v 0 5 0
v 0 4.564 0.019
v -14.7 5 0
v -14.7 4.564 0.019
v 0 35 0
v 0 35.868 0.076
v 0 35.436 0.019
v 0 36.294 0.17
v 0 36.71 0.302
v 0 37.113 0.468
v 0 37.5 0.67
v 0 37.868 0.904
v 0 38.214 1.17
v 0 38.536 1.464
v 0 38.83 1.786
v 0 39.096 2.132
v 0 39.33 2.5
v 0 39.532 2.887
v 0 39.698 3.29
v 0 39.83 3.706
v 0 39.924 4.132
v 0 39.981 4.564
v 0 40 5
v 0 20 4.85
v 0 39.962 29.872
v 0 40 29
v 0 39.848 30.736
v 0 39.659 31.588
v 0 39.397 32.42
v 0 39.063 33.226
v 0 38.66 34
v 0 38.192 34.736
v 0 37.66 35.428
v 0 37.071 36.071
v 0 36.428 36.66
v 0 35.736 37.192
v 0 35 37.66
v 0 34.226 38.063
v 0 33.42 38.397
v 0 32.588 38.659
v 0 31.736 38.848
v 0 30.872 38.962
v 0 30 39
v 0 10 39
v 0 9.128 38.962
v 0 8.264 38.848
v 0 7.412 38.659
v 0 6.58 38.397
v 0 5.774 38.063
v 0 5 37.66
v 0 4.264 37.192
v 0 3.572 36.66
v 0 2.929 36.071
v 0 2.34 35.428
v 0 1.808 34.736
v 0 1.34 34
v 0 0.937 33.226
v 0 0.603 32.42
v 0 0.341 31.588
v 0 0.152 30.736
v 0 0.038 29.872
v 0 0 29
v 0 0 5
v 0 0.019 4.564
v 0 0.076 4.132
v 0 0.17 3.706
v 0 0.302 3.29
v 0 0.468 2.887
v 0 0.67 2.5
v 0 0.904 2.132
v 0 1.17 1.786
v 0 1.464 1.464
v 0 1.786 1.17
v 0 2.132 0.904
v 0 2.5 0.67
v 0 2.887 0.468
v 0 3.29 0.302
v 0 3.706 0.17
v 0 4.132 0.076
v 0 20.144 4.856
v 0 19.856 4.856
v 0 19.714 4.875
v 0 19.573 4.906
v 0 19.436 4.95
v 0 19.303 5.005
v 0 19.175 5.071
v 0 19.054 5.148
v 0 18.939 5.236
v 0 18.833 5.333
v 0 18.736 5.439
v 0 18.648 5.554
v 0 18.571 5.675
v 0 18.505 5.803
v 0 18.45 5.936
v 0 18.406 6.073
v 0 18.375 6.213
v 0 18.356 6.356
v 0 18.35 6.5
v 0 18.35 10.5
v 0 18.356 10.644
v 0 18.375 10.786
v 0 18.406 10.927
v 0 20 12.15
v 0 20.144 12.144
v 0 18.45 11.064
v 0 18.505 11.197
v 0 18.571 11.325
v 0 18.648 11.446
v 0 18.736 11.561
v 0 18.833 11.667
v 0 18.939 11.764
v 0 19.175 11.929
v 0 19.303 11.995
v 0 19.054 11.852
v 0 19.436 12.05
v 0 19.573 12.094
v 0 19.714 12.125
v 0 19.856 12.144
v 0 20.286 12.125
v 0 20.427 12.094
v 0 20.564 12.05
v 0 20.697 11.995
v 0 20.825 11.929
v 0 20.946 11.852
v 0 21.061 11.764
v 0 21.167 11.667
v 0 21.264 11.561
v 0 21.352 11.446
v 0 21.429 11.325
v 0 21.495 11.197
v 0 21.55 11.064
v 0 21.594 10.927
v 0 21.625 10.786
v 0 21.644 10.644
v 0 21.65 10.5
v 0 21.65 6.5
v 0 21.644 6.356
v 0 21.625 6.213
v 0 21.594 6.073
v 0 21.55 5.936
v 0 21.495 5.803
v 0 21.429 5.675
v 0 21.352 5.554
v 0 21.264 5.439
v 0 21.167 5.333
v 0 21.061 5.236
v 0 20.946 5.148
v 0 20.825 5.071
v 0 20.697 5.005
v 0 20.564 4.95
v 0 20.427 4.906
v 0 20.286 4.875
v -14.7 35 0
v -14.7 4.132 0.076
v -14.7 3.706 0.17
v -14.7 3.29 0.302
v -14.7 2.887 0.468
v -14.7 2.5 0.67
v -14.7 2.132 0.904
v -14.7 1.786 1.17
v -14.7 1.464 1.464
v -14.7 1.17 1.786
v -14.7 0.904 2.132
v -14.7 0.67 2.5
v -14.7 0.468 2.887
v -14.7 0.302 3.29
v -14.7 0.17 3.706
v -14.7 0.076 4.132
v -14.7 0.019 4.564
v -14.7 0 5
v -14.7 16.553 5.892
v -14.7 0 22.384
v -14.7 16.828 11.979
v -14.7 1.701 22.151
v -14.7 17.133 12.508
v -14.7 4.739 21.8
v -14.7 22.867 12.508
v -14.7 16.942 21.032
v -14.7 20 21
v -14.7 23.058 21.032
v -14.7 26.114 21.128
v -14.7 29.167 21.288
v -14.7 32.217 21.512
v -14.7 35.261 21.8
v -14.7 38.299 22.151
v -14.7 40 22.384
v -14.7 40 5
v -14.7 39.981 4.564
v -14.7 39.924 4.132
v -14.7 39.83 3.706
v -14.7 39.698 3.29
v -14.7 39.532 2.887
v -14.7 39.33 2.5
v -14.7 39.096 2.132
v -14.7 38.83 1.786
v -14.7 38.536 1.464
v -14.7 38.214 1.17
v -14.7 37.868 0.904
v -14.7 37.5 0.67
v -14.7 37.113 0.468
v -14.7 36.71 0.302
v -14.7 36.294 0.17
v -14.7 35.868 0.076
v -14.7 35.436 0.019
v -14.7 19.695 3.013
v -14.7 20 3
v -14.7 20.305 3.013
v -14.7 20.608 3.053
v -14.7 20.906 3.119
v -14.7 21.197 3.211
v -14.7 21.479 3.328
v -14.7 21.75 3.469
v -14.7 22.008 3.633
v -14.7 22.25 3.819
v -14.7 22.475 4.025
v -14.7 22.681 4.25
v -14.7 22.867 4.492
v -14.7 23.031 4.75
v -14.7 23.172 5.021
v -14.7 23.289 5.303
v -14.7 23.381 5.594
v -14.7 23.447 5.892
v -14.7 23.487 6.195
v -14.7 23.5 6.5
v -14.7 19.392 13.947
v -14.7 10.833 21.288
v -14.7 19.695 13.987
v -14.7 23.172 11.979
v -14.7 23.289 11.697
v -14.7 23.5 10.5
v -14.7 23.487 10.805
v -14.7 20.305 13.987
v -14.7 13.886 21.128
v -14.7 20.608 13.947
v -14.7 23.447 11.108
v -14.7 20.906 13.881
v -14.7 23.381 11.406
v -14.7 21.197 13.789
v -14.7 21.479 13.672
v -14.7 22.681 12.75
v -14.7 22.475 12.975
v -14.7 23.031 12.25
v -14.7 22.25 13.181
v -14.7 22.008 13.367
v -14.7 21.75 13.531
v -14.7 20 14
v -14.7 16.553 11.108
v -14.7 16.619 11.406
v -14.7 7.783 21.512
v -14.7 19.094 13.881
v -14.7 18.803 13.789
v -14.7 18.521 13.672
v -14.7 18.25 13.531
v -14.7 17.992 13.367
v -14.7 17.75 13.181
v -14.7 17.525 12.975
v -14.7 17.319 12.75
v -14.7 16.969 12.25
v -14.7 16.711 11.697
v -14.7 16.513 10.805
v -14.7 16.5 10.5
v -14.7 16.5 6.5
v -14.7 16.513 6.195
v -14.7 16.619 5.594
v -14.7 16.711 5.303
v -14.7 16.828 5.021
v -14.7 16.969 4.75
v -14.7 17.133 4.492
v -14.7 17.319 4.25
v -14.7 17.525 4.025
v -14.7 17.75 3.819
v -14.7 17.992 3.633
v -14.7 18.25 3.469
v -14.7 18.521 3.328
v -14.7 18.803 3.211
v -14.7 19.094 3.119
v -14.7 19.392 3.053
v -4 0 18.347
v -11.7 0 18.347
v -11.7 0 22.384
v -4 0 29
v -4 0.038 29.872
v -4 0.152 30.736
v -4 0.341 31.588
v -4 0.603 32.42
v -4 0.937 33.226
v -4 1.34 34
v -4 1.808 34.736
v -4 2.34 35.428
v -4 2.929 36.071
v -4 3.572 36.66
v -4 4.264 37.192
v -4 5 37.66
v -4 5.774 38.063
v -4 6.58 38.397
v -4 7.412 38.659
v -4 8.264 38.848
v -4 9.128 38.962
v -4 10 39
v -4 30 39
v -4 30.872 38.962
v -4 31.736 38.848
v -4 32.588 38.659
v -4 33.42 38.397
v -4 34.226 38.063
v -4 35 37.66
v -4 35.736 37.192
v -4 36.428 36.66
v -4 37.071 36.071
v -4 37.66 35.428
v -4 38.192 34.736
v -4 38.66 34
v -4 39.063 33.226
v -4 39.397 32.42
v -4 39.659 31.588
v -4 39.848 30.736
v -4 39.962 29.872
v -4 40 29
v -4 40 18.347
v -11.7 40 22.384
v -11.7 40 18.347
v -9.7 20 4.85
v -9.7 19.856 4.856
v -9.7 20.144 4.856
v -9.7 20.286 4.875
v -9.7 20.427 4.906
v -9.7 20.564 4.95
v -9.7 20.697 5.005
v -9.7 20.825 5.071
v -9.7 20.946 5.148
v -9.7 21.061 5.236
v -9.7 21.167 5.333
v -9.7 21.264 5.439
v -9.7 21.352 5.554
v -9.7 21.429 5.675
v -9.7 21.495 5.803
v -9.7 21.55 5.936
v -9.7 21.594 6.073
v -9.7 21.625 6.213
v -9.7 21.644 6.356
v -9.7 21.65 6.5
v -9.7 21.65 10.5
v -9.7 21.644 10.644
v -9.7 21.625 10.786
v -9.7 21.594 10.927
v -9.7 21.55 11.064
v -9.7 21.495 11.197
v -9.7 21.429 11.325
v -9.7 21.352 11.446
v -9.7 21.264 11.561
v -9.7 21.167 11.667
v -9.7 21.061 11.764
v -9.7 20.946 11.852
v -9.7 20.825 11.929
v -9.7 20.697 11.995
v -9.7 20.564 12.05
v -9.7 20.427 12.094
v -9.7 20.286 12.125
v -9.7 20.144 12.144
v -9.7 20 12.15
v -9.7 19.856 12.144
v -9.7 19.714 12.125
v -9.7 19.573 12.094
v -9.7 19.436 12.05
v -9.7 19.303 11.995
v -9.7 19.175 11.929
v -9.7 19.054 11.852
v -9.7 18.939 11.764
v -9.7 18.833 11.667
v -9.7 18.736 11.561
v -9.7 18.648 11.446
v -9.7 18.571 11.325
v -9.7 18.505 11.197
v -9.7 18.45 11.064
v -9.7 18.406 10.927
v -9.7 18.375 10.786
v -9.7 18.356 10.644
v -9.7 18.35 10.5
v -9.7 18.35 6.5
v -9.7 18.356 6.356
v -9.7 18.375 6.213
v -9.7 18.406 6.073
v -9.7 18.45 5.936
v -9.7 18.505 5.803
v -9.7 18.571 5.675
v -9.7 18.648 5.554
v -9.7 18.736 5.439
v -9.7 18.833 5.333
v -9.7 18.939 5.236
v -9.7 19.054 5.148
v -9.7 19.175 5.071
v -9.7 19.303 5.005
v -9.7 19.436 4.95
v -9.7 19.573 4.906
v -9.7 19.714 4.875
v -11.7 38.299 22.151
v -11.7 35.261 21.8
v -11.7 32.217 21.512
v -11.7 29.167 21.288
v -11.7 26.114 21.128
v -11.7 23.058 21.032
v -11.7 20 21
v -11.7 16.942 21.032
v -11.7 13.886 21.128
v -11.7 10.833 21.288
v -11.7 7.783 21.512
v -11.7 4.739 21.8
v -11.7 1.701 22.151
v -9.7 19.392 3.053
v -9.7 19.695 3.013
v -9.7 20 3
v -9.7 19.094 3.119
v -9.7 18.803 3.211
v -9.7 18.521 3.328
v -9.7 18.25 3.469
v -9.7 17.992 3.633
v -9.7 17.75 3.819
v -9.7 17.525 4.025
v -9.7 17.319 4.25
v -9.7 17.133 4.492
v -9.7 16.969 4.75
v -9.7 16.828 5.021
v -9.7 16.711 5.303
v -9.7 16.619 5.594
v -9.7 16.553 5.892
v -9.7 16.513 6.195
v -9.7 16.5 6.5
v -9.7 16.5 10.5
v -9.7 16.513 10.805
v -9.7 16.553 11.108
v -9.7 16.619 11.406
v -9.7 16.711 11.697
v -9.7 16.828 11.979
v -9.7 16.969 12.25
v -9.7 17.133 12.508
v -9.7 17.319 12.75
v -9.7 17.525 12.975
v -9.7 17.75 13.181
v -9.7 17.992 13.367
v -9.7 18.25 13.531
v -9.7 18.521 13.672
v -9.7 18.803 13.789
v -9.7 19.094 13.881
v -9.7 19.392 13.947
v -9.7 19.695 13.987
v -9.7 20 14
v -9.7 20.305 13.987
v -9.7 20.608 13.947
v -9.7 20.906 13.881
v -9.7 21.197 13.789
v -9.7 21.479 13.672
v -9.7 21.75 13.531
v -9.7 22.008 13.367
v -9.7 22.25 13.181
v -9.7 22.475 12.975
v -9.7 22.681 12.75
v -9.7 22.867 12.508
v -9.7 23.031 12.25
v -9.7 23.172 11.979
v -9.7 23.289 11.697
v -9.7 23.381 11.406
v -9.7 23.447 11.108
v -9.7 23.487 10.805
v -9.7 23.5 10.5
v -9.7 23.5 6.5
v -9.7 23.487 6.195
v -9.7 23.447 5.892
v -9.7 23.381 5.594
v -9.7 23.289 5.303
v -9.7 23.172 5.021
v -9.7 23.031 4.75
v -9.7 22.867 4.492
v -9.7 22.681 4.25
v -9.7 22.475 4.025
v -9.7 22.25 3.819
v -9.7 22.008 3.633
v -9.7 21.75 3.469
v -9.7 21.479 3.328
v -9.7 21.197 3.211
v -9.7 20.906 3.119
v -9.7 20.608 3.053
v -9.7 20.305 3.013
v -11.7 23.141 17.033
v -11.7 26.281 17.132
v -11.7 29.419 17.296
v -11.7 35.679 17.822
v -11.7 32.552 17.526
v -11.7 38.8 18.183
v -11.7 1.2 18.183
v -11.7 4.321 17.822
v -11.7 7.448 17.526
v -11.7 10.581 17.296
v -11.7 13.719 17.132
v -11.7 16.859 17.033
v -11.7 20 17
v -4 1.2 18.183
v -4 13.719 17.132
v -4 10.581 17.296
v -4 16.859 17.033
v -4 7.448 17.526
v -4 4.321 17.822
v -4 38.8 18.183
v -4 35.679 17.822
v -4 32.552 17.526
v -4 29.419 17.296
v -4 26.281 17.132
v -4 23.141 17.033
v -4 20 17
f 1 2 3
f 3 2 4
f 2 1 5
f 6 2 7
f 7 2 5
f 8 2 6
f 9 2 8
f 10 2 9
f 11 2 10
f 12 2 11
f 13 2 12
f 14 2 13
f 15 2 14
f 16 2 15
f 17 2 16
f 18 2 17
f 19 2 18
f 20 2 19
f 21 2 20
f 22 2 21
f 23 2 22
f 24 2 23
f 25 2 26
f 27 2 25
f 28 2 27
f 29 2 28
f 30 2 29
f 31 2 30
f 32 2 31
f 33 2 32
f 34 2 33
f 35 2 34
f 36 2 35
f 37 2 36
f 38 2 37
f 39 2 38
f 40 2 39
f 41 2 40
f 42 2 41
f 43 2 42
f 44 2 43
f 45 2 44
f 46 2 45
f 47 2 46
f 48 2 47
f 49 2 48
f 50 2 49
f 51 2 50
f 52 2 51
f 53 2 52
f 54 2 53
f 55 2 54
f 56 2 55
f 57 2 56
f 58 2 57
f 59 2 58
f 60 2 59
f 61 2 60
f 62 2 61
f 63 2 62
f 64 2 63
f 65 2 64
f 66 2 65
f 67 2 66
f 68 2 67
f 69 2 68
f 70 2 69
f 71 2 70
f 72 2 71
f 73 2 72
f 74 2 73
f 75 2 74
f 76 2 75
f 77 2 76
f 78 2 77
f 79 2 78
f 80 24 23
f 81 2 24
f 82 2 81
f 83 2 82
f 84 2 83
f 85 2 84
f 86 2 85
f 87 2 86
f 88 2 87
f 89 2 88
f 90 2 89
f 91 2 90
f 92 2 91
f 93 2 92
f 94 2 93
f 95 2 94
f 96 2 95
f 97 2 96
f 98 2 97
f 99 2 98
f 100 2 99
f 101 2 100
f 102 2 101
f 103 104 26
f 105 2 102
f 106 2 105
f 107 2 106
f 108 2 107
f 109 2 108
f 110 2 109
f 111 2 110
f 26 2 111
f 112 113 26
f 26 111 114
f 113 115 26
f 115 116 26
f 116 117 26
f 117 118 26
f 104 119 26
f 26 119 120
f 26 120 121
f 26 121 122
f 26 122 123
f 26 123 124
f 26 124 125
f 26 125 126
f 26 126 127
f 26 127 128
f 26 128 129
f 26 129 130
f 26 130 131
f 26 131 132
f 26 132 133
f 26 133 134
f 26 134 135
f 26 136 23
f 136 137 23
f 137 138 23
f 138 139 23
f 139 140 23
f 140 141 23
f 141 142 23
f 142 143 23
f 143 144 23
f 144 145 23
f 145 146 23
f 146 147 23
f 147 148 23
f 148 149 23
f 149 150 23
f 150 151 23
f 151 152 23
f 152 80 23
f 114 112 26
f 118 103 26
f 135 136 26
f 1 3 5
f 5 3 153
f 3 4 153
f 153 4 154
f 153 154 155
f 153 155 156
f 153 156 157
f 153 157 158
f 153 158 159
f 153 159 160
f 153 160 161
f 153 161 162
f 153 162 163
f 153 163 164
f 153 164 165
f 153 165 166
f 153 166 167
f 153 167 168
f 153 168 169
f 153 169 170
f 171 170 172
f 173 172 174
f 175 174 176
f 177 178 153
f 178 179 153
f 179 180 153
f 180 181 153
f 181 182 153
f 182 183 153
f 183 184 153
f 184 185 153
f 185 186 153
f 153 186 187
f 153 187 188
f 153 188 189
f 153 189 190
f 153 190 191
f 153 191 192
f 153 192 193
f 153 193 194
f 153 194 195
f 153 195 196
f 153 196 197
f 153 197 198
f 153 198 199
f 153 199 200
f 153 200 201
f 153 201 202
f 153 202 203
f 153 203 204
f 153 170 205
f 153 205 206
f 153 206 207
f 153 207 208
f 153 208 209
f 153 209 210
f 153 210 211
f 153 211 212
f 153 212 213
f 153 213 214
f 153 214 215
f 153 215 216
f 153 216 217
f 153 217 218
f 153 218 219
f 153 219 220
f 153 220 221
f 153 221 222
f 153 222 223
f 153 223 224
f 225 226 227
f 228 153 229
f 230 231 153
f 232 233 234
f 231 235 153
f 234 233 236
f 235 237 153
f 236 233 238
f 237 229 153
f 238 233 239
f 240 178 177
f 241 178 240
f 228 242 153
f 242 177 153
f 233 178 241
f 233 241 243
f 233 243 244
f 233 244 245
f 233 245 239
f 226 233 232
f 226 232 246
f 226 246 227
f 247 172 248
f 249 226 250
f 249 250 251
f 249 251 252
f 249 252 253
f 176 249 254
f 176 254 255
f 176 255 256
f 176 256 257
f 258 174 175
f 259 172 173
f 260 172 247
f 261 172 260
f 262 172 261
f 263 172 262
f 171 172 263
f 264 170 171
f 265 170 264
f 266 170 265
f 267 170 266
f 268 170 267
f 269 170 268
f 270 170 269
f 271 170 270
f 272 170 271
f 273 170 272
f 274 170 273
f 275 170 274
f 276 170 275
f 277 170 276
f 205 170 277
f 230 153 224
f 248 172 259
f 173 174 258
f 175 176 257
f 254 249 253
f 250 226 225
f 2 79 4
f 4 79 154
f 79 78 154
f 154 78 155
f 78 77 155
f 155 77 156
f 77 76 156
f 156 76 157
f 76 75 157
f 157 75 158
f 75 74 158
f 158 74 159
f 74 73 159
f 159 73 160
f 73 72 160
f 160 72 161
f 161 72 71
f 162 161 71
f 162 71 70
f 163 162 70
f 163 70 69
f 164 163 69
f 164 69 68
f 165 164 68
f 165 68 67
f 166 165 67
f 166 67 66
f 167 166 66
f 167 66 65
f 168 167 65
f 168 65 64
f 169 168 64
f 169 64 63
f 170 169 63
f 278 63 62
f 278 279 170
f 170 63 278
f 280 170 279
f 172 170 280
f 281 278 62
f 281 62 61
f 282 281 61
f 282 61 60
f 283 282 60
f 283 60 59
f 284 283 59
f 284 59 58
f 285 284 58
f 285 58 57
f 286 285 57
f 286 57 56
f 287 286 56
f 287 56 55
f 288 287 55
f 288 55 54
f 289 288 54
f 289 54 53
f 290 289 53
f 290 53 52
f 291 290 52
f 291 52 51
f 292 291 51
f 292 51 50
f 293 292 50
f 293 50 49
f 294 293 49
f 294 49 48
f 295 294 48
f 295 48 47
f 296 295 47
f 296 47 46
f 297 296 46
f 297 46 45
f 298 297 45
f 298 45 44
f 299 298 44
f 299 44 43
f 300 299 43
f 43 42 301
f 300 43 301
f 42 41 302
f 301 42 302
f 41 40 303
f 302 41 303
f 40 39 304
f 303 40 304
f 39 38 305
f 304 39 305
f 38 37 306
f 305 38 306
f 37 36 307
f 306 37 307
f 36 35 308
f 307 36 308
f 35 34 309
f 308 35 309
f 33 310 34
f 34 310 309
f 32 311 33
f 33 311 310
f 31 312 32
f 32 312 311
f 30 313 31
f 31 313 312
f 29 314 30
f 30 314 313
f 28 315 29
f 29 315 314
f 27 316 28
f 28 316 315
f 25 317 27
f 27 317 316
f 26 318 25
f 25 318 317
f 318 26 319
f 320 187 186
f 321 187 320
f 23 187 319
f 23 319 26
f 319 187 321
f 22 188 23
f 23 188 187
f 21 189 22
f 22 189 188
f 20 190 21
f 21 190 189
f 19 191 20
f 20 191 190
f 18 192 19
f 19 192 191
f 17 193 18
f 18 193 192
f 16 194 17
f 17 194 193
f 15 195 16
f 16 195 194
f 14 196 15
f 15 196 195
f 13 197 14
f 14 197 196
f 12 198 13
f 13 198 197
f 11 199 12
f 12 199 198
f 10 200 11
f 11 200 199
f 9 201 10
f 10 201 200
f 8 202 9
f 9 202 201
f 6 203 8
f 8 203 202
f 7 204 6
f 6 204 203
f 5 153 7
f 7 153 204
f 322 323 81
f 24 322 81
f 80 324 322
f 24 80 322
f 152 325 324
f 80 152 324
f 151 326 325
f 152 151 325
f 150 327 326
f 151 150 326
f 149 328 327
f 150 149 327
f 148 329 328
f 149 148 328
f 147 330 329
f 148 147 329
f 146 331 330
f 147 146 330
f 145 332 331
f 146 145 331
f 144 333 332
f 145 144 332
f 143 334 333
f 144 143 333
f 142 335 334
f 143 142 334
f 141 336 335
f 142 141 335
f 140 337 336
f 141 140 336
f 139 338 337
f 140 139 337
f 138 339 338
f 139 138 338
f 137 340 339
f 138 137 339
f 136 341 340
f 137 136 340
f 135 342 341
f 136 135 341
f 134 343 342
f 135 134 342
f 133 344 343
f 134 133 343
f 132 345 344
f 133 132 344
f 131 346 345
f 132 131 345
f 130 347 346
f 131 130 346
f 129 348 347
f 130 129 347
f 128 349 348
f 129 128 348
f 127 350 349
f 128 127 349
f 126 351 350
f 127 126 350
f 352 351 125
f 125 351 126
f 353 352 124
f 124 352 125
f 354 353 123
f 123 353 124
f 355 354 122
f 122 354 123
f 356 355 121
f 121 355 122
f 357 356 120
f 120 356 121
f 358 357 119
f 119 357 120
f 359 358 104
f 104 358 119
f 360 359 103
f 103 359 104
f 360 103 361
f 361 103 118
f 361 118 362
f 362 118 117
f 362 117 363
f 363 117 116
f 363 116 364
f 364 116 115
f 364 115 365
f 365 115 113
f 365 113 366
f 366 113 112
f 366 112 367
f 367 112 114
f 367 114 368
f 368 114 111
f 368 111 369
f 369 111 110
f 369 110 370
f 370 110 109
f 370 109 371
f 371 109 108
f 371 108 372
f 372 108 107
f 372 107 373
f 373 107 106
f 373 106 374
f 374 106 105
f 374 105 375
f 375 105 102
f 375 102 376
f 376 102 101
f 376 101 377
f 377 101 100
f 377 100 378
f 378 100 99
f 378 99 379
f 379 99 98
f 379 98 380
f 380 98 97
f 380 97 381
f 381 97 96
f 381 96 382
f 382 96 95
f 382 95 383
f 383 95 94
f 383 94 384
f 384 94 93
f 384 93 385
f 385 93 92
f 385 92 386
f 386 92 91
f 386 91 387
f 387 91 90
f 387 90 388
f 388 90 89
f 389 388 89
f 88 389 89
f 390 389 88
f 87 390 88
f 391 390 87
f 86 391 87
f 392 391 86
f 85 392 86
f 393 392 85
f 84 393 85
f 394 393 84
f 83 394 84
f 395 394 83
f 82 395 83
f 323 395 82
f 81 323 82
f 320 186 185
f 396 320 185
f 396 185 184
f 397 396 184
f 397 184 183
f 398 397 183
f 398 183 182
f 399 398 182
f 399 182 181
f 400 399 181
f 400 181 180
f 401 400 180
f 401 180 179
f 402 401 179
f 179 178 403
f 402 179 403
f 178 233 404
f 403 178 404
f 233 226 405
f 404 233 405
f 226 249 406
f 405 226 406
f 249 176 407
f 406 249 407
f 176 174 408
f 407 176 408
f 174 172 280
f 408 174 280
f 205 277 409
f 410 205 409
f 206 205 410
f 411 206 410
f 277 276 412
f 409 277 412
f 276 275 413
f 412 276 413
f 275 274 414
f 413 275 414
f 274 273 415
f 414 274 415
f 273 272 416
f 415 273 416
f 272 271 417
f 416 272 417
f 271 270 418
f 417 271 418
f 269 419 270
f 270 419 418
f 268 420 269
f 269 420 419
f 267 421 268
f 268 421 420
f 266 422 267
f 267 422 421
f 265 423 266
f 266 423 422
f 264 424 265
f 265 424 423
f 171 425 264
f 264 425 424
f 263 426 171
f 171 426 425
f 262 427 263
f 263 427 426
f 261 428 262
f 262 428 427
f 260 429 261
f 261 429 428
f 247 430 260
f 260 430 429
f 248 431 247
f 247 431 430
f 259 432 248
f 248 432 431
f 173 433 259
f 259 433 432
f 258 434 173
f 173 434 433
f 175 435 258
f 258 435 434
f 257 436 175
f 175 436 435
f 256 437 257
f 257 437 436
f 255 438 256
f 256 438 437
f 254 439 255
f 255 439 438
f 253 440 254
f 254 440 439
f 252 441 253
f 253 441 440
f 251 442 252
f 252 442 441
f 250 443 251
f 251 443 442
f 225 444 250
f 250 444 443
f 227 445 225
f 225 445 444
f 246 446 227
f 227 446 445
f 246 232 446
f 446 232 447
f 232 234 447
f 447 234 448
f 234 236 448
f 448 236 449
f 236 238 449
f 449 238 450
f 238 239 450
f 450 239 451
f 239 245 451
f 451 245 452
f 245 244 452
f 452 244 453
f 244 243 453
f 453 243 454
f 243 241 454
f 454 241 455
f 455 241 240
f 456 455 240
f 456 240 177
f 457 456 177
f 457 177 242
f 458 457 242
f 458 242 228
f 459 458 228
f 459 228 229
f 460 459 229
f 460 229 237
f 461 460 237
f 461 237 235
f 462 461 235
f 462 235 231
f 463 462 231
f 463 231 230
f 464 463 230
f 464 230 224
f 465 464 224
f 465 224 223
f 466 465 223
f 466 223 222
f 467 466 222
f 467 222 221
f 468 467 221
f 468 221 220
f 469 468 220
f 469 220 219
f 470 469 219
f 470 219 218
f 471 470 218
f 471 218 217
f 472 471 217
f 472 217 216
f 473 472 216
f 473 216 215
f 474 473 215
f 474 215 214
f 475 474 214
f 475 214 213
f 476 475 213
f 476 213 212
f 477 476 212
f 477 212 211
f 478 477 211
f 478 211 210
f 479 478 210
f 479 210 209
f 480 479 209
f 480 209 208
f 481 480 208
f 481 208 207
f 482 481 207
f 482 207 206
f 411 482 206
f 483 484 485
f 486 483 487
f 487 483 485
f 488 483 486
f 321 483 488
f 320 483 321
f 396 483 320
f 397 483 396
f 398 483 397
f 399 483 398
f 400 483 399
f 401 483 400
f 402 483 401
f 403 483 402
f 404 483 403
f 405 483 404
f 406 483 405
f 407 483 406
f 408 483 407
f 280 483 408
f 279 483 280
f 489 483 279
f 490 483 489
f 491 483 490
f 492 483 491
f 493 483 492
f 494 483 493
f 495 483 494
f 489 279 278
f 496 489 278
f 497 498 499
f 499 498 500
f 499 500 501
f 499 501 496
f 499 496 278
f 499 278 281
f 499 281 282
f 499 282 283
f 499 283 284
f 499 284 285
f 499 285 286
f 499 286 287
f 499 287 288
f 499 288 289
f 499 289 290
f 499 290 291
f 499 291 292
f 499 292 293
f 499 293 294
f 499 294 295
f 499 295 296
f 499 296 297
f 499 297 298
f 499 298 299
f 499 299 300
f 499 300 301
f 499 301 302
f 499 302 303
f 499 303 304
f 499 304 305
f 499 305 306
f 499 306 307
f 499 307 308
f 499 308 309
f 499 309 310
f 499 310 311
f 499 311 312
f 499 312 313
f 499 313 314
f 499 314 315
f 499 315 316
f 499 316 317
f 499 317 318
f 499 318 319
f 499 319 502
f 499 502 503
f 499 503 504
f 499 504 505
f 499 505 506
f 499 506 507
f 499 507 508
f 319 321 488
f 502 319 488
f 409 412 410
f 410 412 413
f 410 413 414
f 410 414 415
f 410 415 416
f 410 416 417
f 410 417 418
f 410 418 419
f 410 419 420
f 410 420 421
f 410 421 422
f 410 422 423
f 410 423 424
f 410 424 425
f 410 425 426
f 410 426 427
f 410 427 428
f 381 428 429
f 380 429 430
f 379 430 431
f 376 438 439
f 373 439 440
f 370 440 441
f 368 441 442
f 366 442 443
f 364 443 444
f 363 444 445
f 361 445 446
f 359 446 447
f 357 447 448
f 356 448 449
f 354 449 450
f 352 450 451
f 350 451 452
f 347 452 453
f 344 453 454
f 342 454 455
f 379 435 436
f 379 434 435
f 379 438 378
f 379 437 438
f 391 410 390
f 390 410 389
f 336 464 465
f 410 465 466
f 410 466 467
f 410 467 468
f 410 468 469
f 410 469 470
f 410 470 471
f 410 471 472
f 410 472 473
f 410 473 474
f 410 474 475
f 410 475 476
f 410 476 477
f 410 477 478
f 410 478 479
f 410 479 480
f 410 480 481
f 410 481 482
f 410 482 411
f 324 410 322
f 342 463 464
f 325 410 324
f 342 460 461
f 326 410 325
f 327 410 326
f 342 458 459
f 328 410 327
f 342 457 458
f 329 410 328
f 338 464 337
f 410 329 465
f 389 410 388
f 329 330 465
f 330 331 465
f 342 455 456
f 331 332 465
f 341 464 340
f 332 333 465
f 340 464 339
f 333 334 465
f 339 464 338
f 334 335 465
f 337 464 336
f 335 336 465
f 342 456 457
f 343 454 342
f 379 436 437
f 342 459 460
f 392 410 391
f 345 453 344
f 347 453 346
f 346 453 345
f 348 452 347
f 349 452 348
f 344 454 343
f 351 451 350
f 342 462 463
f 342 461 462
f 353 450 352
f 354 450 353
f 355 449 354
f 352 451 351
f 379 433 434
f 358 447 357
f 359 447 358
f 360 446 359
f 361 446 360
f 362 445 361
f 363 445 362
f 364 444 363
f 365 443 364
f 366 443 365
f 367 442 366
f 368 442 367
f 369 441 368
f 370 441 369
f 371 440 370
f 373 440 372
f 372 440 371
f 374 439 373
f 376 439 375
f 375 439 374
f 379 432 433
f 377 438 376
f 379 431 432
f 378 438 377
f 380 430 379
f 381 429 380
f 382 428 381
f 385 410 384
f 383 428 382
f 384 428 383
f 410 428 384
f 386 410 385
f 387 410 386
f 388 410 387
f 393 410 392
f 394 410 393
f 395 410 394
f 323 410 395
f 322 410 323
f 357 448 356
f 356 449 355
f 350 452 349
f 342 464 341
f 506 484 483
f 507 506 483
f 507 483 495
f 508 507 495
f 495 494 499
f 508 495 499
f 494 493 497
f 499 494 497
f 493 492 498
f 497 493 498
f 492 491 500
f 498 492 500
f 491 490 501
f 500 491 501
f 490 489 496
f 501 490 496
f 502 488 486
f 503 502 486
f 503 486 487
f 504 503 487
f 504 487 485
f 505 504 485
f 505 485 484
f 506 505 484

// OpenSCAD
//  TriDPrinting.com Flying SkyDelta 3d Printer

tabWidth=40;
tabDepth=22;
tabRadius=10;
mountRadius=5;  // Software adjusts if larger that 1/2 tabWidth


glassDepth=7.7;
glassDiameter=300;

glassCatchHeight = 3;  // Don't make the height much less than the Lip
glassCatchLip = 4;


boltWasher=7;
boltSize=3.3;  // Note, must add actual size. A clearance size is not automatically added.
boltCountersink=5;

slotLength=4;
slotClearance=3;


tabHeight=4;
eps=0.01;
$fn=72;


height=tabHeight+glassDepth+glassCatchHeight;


module body() {
	mr = (mountRadius > tabWidth/2) ? tabWidth/2 : mountRadius;
	linear_extrude(height=height) hull() {
		// place 4 circles in the corners, with the given radius
		translate([-boltWasher-slotLength-2*slotClearance+mr, mr, 0])
circle(r=mr);
		translate([-boltWasher-slotLength-2*slotClearance+mr, tabWidth-mr, 0])
circle(r=mr);
		translate([tabDepth-tabRadius, tabRadius, 0]) circle(r=tabRadius);
		translate([tabDepth-tabRadius, tabWidth-tabRadius, 0])
circle(r=tabRadius);
	}
}


module slot() {
	union() {
		hull() {
			translate([-boltWasher/2-slotClearance, tabWidth/2,
height-boltCountersink])
cylinder(r=boltWasher/2,h=height-boltCountersink+eps);
			translate([-boltWasher/2-slotClearance-slotLength, tabWidth/2,
height-boltCountersink])
cylinder(r=boltWasher/2,h=height-boltCountersink+eps);
	}
		hull() {
			translate([-boltWasher/2-slotClearance, tabWidth/2, -eps])
cylinder(r=boltSize/2,h=height);
			translate([-boltWasher/2-slotClearance-slotLength, tabWidth/2, -eps])
cylinder(r=boltSize/2,h=height);
		}
	}
}


module glass() {
	translate([glassDiameter/2, tabWidth/2, height-glassDepth-glassCatchHeight])
cylinder(r=glassDiameter/2,h=glassDepth, $fn=300);
}


module glassCatch() {
	translate([glassDiameter/2, tabWidth/2, height-glassCatchHeight-eps])
// For Flat Printing cylinder(r1=glassDiameter/2, r2=glassDiameter/2-glassCatchLip,h=glassCatchHeight+eps+eps, $fn=300);
cylinder(r=glassDiameter/2-glassCatchLip,h=glassCatchHeight+eps+eps, $fn=300);
}


//roundedRect(tabWidth,tabDepth,height,10);
module glassholder() {
  difference () { 
    body();
    slot();
    glass();
    glassCatch();
  }
}

translate([0,0,tabDepth-5]) rotate([0,-90,0]) glassholder();

//translate([0,-tabWidth-5,0]) glassholder();
//translate([0,tabWidth+5,0]) glassholder();
//translate([tabDepth*2+5,0,0]) glassholder();
//translate([tabDepth*2+5,-tabWidth-5,0]) glassholder();
//translate([tabDepth*2+5,tabWidth+5,0]) glassholder();
